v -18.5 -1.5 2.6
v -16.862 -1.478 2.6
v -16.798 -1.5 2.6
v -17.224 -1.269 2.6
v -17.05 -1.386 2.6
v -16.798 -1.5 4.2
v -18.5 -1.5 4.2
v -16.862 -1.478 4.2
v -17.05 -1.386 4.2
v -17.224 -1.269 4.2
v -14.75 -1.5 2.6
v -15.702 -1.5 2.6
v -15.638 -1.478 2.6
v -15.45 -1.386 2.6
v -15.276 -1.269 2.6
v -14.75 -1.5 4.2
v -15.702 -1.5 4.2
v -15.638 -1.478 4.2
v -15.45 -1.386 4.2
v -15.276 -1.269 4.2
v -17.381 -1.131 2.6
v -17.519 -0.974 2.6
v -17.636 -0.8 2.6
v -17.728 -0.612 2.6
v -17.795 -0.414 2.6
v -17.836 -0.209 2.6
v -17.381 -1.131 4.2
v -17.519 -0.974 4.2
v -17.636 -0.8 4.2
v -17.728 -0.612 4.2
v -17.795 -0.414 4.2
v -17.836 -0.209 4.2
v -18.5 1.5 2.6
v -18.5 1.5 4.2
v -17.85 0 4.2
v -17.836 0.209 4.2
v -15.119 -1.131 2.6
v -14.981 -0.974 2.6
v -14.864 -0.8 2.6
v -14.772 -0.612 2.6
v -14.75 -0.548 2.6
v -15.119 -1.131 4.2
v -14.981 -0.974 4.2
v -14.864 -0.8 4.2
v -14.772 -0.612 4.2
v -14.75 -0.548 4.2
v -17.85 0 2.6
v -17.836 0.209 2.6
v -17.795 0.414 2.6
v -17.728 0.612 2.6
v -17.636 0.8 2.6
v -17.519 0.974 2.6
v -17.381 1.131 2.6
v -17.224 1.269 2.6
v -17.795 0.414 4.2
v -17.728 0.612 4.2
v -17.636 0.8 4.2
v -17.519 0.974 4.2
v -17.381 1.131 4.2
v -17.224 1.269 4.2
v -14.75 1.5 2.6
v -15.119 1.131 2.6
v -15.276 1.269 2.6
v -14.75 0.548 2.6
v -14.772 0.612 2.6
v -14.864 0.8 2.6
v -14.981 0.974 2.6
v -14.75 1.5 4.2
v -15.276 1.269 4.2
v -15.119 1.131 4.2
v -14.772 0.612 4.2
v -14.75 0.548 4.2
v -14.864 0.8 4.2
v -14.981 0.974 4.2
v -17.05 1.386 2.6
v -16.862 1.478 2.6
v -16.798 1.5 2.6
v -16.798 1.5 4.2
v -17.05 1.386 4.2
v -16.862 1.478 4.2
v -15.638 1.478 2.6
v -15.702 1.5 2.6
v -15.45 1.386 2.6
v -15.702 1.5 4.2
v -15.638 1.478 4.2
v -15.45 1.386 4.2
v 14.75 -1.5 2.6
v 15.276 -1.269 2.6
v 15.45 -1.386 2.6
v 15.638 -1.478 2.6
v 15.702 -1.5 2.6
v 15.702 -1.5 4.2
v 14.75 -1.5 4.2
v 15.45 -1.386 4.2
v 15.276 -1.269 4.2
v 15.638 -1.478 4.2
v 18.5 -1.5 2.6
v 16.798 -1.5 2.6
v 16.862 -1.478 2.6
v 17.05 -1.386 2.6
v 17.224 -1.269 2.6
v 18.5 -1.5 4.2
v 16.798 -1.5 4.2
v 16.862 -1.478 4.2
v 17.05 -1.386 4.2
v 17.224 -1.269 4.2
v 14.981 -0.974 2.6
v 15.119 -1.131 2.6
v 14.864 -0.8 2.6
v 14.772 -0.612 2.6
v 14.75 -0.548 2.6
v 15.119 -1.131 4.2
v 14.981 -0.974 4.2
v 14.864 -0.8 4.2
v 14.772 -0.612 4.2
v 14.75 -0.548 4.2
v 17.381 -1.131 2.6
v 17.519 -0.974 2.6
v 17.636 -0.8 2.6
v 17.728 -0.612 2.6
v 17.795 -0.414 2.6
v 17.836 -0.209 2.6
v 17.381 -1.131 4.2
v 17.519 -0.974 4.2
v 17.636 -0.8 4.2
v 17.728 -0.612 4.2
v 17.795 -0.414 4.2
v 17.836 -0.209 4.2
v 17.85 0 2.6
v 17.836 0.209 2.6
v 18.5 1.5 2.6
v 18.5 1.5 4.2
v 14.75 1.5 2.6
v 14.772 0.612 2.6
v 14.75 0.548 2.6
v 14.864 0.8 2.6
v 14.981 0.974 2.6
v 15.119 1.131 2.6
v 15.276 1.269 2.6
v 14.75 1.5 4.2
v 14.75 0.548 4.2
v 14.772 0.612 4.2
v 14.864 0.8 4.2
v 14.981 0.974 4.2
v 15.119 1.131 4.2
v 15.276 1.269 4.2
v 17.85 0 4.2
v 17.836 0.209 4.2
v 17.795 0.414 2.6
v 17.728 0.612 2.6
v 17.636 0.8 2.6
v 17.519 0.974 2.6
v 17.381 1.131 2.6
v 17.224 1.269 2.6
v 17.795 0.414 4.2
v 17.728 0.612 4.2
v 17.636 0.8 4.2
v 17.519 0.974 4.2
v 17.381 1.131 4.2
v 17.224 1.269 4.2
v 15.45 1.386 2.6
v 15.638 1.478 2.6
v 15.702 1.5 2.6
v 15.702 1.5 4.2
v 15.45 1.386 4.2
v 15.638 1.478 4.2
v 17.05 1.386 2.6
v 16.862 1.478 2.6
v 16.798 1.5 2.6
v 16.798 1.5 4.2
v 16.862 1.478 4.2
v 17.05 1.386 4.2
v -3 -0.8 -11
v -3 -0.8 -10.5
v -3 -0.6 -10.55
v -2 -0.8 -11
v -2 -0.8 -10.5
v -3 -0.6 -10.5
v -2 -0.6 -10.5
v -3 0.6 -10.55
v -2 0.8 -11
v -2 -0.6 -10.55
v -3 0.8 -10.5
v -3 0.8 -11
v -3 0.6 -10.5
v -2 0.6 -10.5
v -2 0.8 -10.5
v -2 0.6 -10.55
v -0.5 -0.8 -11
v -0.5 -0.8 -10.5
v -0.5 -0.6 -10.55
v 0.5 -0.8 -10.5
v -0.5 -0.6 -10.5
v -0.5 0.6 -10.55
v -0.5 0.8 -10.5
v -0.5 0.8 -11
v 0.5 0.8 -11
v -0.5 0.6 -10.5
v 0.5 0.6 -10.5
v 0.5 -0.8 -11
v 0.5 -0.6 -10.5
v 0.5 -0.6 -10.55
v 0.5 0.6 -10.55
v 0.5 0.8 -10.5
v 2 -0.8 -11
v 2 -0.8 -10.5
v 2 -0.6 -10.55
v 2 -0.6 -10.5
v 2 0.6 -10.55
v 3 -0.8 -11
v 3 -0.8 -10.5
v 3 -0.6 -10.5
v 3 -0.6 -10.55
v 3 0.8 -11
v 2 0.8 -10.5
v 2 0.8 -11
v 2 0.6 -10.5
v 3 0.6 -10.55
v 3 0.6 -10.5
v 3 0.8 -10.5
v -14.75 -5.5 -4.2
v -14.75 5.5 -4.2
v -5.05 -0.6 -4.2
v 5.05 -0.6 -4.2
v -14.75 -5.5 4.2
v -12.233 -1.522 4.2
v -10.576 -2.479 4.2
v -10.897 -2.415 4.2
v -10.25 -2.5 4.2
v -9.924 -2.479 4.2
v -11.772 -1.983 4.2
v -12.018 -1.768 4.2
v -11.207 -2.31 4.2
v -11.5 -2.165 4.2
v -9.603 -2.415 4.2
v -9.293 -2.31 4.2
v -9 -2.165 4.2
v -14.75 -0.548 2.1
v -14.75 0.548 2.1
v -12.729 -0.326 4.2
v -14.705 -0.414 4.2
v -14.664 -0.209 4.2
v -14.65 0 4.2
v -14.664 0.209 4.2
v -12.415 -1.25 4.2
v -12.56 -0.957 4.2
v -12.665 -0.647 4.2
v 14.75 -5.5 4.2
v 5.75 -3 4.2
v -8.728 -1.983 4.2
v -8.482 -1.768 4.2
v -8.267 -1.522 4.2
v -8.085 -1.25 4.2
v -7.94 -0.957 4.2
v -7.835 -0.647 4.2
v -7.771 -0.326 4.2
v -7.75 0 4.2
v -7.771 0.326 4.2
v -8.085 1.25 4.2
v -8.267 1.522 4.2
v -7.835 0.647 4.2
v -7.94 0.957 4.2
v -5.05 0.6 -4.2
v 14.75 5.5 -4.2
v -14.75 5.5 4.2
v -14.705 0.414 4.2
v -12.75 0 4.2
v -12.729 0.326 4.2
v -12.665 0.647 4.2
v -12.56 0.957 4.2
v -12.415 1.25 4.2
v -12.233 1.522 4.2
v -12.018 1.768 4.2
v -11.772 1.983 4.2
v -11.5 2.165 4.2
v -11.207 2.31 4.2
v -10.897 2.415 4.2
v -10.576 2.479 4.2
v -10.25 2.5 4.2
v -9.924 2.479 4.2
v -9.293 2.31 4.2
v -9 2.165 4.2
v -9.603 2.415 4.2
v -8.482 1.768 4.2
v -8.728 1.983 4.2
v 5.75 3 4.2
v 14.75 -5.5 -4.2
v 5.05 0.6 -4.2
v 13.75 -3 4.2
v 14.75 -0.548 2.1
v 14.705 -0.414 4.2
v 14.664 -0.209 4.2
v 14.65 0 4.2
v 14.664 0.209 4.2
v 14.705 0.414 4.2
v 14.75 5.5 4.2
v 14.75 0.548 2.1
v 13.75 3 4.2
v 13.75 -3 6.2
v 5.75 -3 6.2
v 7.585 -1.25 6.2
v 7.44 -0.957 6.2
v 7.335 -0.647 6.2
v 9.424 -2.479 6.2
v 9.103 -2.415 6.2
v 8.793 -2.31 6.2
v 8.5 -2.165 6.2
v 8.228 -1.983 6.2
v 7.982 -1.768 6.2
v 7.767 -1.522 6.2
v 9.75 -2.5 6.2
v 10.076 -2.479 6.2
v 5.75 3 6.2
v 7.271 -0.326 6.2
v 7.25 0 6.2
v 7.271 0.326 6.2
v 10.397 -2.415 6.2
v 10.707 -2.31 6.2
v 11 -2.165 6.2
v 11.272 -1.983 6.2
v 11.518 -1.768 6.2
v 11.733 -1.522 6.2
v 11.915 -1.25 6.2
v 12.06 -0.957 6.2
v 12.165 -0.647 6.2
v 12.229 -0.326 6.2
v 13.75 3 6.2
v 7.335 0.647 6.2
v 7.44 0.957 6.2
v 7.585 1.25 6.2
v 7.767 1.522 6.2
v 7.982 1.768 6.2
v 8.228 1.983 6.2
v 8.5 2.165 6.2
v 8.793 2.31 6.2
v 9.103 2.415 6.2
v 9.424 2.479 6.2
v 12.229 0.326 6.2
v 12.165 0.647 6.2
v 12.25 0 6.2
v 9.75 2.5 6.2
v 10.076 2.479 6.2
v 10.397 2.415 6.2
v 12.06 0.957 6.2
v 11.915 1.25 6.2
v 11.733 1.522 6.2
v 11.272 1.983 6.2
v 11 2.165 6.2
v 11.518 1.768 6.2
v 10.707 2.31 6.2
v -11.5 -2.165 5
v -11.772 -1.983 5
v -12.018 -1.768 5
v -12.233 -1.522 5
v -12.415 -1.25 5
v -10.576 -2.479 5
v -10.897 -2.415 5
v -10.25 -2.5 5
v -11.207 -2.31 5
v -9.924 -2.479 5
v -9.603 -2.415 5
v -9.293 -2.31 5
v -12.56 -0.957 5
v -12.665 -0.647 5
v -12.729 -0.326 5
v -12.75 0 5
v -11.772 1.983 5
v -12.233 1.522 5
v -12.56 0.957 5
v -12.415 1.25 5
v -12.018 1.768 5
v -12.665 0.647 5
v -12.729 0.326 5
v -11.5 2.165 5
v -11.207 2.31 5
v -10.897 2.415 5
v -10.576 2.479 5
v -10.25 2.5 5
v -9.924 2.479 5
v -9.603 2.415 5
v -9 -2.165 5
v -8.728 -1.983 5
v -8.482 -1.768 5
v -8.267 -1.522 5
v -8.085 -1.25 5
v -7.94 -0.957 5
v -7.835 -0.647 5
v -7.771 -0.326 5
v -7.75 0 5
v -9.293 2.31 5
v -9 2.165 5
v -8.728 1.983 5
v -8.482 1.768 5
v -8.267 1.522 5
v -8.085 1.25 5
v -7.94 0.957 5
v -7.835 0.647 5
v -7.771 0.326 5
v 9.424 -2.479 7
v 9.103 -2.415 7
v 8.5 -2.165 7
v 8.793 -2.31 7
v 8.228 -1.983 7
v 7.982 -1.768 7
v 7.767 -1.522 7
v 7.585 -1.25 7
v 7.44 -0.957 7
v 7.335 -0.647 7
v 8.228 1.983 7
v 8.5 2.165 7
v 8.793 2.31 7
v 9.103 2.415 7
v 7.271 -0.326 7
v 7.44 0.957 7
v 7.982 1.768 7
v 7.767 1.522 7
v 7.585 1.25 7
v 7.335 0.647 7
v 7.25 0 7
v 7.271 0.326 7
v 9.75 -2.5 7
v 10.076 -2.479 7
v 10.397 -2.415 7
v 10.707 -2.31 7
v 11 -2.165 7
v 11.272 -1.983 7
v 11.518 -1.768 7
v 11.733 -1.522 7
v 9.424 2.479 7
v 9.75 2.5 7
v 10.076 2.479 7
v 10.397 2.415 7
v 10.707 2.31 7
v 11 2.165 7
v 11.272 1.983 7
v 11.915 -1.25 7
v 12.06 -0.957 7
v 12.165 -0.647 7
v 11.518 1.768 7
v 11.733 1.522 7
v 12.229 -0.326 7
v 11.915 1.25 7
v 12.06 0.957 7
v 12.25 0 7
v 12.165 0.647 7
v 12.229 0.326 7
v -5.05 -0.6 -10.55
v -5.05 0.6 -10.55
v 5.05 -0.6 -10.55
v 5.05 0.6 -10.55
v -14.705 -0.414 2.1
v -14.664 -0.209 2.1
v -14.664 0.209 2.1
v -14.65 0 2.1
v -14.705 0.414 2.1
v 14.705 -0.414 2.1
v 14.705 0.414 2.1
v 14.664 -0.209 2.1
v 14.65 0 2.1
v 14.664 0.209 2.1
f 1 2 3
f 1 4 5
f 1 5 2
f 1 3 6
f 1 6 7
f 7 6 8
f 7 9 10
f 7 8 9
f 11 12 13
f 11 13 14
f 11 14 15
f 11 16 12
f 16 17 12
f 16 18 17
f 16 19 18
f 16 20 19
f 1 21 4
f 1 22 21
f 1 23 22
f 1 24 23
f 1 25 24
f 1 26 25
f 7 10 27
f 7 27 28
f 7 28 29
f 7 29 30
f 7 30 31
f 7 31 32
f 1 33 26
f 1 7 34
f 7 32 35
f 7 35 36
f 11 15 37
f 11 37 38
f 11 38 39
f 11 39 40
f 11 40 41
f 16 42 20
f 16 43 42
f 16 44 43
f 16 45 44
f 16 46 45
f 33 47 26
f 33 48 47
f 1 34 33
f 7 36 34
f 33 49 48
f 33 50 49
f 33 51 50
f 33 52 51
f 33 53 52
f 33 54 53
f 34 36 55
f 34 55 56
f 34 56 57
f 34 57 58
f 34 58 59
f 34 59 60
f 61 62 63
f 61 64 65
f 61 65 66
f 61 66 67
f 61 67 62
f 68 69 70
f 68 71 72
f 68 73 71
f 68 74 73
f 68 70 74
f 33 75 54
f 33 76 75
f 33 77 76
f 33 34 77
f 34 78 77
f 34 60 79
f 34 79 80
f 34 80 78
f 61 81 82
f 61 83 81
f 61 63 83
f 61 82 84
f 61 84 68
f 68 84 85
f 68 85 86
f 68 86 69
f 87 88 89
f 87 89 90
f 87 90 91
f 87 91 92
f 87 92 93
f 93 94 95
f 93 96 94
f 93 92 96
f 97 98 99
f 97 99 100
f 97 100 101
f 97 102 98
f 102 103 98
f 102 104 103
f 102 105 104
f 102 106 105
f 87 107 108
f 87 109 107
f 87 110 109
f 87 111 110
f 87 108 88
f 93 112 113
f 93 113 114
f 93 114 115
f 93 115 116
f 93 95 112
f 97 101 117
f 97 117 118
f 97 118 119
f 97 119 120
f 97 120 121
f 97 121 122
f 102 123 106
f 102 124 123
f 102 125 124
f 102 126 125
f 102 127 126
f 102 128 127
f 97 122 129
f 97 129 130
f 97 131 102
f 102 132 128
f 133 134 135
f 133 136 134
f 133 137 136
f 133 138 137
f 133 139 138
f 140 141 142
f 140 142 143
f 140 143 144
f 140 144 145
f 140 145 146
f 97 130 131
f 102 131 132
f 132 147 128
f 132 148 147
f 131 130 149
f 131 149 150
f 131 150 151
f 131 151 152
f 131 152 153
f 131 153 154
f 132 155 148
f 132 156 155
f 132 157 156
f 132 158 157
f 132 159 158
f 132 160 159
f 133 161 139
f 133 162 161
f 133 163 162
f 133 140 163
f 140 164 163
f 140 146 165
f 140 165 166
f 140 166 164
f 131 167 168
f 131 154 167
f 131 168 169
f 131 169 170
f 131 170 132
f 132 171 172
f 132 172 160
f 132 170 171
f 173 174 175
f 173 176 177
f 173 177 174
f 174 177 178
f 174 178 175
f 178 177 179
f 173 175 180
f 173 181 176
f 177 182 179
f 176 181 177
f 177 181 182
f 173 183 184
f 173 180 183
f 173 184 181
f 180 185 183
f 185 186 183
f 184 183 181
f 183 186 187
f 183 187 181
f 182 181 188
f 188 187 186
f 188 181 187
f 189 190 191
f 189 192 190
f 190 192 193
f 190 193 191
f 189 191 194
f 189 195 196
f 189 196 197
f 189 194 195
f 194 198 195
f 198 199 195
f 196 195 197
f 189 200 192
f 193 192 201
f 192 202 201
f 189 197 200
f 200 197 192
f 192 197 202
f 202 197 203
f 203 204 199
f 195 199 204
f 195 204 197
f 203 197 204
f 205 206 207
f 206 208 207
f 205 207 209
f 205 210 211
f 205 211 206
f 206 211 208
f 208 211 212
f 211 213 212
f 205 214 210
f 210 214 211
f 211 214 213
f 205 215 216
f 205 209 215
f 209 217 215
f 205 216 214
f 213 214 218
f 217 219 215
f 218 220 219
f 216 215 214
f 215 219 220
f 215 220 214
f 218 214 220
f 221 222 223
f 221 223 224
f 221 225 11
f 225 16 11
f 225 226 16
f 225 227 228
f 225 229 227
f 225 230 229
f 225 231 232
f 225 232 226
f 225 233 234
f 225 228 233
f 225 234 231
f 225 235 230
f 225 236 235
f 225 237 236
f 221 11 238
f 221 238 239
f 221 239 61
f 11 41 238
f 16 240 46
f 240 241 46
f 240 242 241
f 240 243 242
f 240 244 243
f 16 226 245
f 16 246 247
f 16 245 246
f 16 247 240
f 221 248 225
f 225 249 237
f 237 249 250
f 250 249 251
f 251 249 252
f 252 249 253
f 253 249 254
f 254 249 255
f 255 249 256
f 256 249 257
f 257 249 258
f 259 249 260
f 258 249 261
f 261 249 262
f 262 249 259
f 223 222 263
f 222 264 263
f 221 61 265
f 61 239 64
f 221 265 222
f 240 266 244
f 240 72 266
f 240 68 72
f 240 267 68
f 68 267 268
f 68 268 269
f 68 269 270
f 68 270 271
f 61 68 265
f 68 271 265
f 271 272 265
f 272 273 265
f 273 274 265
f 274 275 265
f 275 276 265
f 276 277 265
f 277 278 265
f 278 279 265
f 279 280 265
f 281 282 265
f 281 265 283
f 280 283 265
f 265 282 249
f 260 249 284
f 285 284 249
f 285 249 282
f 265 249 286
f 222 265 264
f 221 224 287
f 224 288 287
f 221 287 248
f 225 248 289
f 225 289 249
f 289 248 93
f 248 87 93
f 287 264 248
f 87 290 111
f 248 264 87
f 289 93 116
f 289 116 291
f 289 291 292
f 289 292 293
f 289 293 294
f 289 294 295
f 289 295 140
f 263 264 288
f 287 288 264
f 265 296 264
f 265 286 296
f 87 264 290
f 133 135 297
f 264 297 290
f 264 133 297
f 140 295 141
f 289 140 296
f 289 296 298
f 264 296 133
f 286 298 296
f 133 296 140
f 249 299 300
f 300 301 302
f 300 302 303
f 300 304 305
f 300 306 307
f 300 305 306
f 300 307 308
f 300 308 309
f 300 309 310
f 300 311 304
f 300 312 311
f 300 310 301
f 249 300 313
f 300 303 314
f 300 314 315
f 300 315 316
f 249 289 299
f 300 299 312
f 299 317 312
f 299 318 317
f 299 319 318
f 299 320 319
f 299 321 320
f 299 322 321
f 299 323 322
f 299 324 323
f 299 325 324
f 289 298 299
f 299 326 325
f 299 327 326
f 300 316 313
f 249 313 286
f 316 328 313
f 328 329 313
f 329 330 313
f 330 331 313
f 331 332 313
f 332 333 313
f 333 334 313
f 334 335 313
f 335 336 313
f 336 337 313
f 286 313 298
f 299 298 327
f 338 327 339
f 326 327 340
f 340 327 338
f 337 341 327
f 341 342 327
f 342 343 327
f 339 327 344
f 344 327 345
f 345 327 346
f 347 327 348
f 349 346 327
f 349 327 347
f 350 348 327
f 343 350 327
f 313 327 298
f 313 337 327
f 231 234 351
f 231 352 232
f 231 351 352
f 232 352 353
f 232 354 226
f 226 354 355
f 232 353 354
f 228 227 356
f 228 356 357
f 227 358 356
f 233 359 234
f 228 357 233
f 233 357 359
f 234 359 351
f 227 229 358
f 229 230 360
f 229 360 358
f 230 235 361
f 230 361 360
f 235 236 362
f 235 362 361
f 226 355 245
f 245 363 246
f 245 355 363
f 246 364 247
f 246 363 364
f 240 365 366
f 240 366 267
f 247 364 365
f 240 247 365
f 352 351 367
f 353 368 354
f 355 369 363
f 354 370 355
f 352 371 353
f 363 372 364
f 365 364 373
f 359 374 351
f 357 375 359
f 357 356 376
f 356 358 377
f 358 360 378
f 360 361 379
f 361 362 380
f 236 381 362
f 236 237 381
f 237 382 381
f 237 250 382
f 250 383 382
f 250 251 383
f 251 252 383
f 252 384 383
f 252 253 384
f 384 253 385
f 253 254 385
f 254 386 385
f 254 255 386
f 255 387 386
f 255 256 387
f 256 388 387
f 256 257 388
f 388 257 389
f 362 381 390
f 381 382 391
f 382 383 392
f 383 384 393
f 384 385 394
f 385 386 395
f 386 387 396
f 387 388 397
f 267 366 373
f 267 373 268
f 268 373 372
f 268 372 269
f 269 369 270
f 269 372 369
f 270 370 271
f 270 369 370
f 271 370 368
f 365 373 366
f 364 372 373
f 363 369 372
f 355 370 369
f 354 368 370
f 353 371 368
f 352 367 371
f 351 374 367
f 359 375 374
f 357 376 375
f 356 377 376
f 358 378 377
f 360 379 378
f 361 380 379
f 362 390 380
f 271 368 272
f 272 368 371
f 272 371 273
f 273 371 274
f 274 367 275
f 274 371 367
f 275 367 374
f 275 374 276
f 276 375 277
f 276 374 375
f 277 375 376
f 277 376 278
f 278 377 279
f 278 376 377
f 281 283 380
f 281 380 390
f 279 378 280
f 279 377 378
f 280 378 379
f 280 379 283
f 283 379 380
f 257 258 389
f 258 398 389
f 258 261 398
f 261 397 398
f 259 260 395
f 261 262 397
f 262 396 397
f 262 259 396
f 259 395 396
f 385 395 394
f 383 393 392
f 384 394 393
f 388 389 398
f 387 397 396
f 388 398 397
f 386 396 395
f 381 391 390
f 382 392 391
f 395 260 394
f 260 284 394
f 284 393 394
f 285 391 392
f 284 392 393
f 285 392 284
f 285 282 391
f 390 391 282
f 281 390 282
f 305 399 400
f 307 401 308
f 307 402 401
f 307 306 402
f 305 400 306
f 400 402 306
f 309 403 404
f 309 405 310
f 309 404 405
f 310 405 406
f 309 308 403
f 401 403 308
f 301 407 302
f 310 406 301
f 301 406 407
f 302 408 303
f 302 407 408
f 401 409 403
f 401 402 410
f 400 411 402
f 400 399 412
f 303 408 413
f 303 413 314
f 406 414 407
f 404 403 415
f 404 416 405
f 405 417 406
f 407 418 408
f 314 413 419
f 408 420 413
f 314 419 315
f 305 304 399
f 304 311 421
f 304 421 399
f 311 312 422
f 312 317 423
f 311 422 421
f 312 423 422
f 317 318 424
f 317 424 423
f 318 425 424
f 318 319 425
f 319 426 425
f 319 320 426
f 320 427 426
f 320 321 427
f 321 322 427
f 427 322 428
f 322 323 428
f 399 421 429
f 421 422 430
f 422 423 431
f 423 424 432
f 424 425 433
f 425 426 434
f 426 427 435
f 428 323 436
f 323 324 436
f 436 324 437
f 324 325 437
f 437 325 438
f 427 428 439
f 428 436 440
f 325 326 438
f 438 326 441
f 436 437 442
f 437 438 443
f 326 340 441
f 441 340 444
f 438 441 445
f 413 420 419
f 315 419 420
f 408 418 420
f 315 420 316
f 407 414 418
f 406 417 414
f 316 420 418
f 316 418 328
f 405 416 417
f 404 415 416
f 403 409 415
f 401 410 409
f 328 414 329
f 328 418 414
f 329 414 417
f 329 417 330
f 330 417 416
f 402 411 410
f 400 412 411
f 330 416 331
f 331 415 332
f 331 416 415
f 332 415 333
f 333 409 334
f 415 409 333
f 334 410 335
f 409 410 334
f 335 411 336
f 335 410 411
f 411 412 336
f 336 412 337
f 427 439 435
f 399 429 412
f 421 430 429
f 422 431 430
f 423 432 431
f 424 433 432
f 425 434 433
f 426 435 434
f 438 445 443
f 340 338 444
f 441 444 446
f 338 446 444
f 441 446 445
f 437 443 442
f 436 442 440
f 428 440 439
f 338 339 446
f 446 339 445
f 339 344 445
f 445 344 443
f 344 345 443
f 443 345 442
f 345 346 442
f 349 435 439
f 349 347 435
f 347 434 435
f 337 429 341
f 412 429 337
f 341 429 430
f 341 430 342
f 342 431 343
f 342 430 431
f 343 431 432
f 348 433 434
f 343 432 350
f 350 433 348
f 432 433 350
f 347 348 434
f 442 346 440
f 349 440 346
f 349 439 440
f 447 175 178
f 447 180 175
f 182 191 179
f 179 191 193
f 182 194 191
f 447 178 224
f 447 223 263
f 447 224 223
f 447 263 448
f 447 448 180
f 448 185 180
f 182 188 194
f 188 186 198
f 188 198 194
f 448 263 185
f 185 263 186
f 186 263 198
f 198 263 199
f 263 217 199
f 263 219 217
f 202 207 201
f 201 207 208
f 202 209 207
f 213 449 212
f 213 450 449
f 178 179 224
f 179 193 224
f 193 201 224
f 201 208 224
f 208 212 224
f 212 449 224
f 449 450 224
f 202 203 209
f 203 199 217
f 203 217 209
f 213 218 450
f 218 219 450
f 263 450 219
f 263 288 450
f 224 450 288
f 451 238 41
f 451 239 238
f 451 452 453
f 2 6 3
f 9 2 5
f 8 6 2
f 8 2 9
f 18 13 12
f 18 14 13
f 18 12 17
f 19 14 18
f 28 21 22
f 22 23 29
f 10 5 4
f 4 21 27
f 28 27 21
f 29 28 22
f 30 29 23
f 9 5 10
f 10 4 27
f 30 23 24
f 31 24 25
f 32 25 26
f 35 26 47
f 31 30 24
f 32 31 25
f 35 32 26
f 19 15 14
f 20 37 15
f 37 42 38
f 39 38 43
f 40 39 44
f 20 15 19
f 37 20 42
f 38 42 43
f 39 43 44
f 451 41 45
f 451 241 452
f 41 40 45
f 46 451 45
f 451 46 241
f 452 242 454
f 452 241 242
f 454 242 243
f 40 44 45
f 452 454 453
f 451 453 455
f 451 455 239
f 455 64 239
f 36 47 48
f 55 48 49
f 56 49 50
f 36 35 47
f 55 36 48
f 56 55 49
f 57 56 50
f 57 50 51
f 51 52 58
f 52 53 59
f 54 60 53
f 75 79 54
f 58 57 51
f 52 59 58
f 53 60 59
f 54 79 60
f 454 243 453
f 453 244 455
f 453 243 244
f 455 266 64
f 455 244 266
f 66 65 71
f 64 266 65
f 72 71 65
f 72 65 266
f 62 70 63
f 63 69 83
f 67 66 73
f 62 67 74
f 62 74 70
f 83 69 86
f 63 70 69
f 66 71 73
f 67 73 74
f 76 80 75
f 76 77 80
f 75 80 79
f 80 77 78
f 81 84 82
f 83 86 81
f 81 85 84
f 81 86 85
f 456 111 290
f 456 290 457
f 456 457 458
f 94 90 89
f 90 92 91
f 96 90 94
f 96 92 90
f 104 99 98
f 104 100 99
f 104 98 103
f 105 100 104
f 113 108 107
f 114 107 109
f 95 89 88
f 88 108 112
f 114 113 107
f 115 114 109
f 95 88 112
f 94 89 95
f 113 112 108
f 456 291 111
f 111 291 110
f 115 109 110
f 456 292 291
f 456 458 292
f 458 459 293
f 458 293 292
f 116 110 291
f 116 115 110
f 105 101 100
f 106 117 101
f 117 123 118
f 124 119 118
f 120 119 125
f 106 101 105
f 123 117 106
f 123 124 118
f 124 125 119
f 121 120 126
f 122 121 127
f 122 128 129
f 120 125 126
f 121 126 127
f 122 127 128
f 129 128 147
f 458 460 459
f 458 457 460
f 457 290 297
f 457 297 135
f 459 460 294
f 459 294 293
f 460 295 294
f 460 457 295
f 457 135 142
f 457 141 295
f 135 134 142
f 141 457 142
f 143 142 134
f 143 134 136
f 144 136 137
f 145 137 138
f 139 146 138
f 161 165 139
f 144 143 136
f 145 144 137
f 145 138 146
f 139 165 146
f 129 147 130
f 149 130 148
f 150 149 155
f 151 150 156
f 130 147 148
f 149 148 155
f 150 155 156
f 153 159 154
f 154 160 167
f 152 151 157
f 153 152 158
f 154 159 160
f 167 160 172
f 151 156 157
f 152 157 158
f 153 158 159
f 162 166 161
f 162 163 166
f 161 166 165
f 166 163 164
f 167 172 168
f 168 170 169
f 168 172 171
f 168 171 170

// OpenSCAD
// Sharp GP2Y0A21YK0F 赤外線測距センサ
// データシート "Outline Dimensions" (Unit: mm) からの概略モデリング
//
// 座標系: 単位 mm。原点 = 本体中心
//         X = 幅方向, Y = 高さ方向, Z = 光軸
//         +Z = レンズ面(発光/受光), -Z = PWB / コネクタ側(取付面)

// ---------------- パラメータ ----------------
body_w  = 29.5;             // 本体幅
body_h  = 11.0;             // 本体高（側面プロファイルより概算）
body_d  = 8.4;              // 本体奥行き（前面-背面）

overall_w = 37.0;           // 取付タブ含む全幅
tab_h   = 3.0;              // 取付タブ高さ
tab_thk = 1.6;              // 取付タブ厚み（概算）
tab_xo  = overall_w / 2;   // タブ外側端 (18.5)
hole_d  = 3.2;              // 取付穴径 (phi3.2)
hole_x  = 16.25;            // 取付穴中心 X（概算）

em_x  = -body_w/2 + 4.5;    // Light emitter 中心  (-10.25)
det_x = em_x + 20.0;        // Light detector 中心 (+9.75), 間隔 20 ±0.1
lens_r  = 2.5;              // レンズ半径（概算）

case_w = 8.0;               // レンズケース幅（detector 側）
case_h = 6.0;               // レンズケース高
case_d = 2.0;               // レンズケース突出量

pwb_w   = 10.1;             // PWB タブ幅
pwb_thk = 1.2;              // PWB 厚み
pwb_len = 6.35;             // PWB の本体背面からの突出 (14.75 - 8.4)

// ---------------- 本体 ----------------
$fn = 48;

difference() {
  union() {
    // 本体
    cube([body_w, body_h, body_d], center = true);

    // 取付タブ（前面 +Z、左右）
    for (sx = [-1, 1])
      translate([sx * (body_w/2 + (tab_xo - body_w/2)/2), 0,
                 body_d/2 - tab_thk/2])
        cube([tab_xo - body_w/2, tab_h, tab_thk], center = true);

    // レンズケース（detector 側、前面 +Z）
    translate([det_x, 0, body_d/2 + case_d/2])
      cube([case_w, case_h, case_d], center = true);

    // Light emitter レンズ（本体前面に突出）
    translate([em_x, 0, body_d/2])
      cylinder(h = 0.8, d = lens_r*2);

    // Light detector レンズ（ケース上に突出）
    translate([det_x, 0, body_d/2 + case_d])
      cylinder(h = 0.8, d = lens_r*2);

    // PWB タブ（背面 -Z）
    translate([0, 0, -body_d/2 - pwb_len/2])
      cube([pwb_w, pwb_thk, pwb_len], center = true);

    // コネクタ用ピン ①②③（PWB 端面部）
    for (i = [-1, 0, 1])
      translate([i*2.5, 0, -body_d/2 - pwb_len - 0.2])
        cube([1.0, pwb_thk + 0.4, 0.5], center = true);
  }

  // 取付穴 phi3.2（タブを Z 方向に貫通）
  for (sx = [-1, 1])
    translate([sx*hole_x, 0, body_d/2 - tab_thk - 0.5])
      cylinder(h = tab_thk + 1.0, d = hole_d);
}
